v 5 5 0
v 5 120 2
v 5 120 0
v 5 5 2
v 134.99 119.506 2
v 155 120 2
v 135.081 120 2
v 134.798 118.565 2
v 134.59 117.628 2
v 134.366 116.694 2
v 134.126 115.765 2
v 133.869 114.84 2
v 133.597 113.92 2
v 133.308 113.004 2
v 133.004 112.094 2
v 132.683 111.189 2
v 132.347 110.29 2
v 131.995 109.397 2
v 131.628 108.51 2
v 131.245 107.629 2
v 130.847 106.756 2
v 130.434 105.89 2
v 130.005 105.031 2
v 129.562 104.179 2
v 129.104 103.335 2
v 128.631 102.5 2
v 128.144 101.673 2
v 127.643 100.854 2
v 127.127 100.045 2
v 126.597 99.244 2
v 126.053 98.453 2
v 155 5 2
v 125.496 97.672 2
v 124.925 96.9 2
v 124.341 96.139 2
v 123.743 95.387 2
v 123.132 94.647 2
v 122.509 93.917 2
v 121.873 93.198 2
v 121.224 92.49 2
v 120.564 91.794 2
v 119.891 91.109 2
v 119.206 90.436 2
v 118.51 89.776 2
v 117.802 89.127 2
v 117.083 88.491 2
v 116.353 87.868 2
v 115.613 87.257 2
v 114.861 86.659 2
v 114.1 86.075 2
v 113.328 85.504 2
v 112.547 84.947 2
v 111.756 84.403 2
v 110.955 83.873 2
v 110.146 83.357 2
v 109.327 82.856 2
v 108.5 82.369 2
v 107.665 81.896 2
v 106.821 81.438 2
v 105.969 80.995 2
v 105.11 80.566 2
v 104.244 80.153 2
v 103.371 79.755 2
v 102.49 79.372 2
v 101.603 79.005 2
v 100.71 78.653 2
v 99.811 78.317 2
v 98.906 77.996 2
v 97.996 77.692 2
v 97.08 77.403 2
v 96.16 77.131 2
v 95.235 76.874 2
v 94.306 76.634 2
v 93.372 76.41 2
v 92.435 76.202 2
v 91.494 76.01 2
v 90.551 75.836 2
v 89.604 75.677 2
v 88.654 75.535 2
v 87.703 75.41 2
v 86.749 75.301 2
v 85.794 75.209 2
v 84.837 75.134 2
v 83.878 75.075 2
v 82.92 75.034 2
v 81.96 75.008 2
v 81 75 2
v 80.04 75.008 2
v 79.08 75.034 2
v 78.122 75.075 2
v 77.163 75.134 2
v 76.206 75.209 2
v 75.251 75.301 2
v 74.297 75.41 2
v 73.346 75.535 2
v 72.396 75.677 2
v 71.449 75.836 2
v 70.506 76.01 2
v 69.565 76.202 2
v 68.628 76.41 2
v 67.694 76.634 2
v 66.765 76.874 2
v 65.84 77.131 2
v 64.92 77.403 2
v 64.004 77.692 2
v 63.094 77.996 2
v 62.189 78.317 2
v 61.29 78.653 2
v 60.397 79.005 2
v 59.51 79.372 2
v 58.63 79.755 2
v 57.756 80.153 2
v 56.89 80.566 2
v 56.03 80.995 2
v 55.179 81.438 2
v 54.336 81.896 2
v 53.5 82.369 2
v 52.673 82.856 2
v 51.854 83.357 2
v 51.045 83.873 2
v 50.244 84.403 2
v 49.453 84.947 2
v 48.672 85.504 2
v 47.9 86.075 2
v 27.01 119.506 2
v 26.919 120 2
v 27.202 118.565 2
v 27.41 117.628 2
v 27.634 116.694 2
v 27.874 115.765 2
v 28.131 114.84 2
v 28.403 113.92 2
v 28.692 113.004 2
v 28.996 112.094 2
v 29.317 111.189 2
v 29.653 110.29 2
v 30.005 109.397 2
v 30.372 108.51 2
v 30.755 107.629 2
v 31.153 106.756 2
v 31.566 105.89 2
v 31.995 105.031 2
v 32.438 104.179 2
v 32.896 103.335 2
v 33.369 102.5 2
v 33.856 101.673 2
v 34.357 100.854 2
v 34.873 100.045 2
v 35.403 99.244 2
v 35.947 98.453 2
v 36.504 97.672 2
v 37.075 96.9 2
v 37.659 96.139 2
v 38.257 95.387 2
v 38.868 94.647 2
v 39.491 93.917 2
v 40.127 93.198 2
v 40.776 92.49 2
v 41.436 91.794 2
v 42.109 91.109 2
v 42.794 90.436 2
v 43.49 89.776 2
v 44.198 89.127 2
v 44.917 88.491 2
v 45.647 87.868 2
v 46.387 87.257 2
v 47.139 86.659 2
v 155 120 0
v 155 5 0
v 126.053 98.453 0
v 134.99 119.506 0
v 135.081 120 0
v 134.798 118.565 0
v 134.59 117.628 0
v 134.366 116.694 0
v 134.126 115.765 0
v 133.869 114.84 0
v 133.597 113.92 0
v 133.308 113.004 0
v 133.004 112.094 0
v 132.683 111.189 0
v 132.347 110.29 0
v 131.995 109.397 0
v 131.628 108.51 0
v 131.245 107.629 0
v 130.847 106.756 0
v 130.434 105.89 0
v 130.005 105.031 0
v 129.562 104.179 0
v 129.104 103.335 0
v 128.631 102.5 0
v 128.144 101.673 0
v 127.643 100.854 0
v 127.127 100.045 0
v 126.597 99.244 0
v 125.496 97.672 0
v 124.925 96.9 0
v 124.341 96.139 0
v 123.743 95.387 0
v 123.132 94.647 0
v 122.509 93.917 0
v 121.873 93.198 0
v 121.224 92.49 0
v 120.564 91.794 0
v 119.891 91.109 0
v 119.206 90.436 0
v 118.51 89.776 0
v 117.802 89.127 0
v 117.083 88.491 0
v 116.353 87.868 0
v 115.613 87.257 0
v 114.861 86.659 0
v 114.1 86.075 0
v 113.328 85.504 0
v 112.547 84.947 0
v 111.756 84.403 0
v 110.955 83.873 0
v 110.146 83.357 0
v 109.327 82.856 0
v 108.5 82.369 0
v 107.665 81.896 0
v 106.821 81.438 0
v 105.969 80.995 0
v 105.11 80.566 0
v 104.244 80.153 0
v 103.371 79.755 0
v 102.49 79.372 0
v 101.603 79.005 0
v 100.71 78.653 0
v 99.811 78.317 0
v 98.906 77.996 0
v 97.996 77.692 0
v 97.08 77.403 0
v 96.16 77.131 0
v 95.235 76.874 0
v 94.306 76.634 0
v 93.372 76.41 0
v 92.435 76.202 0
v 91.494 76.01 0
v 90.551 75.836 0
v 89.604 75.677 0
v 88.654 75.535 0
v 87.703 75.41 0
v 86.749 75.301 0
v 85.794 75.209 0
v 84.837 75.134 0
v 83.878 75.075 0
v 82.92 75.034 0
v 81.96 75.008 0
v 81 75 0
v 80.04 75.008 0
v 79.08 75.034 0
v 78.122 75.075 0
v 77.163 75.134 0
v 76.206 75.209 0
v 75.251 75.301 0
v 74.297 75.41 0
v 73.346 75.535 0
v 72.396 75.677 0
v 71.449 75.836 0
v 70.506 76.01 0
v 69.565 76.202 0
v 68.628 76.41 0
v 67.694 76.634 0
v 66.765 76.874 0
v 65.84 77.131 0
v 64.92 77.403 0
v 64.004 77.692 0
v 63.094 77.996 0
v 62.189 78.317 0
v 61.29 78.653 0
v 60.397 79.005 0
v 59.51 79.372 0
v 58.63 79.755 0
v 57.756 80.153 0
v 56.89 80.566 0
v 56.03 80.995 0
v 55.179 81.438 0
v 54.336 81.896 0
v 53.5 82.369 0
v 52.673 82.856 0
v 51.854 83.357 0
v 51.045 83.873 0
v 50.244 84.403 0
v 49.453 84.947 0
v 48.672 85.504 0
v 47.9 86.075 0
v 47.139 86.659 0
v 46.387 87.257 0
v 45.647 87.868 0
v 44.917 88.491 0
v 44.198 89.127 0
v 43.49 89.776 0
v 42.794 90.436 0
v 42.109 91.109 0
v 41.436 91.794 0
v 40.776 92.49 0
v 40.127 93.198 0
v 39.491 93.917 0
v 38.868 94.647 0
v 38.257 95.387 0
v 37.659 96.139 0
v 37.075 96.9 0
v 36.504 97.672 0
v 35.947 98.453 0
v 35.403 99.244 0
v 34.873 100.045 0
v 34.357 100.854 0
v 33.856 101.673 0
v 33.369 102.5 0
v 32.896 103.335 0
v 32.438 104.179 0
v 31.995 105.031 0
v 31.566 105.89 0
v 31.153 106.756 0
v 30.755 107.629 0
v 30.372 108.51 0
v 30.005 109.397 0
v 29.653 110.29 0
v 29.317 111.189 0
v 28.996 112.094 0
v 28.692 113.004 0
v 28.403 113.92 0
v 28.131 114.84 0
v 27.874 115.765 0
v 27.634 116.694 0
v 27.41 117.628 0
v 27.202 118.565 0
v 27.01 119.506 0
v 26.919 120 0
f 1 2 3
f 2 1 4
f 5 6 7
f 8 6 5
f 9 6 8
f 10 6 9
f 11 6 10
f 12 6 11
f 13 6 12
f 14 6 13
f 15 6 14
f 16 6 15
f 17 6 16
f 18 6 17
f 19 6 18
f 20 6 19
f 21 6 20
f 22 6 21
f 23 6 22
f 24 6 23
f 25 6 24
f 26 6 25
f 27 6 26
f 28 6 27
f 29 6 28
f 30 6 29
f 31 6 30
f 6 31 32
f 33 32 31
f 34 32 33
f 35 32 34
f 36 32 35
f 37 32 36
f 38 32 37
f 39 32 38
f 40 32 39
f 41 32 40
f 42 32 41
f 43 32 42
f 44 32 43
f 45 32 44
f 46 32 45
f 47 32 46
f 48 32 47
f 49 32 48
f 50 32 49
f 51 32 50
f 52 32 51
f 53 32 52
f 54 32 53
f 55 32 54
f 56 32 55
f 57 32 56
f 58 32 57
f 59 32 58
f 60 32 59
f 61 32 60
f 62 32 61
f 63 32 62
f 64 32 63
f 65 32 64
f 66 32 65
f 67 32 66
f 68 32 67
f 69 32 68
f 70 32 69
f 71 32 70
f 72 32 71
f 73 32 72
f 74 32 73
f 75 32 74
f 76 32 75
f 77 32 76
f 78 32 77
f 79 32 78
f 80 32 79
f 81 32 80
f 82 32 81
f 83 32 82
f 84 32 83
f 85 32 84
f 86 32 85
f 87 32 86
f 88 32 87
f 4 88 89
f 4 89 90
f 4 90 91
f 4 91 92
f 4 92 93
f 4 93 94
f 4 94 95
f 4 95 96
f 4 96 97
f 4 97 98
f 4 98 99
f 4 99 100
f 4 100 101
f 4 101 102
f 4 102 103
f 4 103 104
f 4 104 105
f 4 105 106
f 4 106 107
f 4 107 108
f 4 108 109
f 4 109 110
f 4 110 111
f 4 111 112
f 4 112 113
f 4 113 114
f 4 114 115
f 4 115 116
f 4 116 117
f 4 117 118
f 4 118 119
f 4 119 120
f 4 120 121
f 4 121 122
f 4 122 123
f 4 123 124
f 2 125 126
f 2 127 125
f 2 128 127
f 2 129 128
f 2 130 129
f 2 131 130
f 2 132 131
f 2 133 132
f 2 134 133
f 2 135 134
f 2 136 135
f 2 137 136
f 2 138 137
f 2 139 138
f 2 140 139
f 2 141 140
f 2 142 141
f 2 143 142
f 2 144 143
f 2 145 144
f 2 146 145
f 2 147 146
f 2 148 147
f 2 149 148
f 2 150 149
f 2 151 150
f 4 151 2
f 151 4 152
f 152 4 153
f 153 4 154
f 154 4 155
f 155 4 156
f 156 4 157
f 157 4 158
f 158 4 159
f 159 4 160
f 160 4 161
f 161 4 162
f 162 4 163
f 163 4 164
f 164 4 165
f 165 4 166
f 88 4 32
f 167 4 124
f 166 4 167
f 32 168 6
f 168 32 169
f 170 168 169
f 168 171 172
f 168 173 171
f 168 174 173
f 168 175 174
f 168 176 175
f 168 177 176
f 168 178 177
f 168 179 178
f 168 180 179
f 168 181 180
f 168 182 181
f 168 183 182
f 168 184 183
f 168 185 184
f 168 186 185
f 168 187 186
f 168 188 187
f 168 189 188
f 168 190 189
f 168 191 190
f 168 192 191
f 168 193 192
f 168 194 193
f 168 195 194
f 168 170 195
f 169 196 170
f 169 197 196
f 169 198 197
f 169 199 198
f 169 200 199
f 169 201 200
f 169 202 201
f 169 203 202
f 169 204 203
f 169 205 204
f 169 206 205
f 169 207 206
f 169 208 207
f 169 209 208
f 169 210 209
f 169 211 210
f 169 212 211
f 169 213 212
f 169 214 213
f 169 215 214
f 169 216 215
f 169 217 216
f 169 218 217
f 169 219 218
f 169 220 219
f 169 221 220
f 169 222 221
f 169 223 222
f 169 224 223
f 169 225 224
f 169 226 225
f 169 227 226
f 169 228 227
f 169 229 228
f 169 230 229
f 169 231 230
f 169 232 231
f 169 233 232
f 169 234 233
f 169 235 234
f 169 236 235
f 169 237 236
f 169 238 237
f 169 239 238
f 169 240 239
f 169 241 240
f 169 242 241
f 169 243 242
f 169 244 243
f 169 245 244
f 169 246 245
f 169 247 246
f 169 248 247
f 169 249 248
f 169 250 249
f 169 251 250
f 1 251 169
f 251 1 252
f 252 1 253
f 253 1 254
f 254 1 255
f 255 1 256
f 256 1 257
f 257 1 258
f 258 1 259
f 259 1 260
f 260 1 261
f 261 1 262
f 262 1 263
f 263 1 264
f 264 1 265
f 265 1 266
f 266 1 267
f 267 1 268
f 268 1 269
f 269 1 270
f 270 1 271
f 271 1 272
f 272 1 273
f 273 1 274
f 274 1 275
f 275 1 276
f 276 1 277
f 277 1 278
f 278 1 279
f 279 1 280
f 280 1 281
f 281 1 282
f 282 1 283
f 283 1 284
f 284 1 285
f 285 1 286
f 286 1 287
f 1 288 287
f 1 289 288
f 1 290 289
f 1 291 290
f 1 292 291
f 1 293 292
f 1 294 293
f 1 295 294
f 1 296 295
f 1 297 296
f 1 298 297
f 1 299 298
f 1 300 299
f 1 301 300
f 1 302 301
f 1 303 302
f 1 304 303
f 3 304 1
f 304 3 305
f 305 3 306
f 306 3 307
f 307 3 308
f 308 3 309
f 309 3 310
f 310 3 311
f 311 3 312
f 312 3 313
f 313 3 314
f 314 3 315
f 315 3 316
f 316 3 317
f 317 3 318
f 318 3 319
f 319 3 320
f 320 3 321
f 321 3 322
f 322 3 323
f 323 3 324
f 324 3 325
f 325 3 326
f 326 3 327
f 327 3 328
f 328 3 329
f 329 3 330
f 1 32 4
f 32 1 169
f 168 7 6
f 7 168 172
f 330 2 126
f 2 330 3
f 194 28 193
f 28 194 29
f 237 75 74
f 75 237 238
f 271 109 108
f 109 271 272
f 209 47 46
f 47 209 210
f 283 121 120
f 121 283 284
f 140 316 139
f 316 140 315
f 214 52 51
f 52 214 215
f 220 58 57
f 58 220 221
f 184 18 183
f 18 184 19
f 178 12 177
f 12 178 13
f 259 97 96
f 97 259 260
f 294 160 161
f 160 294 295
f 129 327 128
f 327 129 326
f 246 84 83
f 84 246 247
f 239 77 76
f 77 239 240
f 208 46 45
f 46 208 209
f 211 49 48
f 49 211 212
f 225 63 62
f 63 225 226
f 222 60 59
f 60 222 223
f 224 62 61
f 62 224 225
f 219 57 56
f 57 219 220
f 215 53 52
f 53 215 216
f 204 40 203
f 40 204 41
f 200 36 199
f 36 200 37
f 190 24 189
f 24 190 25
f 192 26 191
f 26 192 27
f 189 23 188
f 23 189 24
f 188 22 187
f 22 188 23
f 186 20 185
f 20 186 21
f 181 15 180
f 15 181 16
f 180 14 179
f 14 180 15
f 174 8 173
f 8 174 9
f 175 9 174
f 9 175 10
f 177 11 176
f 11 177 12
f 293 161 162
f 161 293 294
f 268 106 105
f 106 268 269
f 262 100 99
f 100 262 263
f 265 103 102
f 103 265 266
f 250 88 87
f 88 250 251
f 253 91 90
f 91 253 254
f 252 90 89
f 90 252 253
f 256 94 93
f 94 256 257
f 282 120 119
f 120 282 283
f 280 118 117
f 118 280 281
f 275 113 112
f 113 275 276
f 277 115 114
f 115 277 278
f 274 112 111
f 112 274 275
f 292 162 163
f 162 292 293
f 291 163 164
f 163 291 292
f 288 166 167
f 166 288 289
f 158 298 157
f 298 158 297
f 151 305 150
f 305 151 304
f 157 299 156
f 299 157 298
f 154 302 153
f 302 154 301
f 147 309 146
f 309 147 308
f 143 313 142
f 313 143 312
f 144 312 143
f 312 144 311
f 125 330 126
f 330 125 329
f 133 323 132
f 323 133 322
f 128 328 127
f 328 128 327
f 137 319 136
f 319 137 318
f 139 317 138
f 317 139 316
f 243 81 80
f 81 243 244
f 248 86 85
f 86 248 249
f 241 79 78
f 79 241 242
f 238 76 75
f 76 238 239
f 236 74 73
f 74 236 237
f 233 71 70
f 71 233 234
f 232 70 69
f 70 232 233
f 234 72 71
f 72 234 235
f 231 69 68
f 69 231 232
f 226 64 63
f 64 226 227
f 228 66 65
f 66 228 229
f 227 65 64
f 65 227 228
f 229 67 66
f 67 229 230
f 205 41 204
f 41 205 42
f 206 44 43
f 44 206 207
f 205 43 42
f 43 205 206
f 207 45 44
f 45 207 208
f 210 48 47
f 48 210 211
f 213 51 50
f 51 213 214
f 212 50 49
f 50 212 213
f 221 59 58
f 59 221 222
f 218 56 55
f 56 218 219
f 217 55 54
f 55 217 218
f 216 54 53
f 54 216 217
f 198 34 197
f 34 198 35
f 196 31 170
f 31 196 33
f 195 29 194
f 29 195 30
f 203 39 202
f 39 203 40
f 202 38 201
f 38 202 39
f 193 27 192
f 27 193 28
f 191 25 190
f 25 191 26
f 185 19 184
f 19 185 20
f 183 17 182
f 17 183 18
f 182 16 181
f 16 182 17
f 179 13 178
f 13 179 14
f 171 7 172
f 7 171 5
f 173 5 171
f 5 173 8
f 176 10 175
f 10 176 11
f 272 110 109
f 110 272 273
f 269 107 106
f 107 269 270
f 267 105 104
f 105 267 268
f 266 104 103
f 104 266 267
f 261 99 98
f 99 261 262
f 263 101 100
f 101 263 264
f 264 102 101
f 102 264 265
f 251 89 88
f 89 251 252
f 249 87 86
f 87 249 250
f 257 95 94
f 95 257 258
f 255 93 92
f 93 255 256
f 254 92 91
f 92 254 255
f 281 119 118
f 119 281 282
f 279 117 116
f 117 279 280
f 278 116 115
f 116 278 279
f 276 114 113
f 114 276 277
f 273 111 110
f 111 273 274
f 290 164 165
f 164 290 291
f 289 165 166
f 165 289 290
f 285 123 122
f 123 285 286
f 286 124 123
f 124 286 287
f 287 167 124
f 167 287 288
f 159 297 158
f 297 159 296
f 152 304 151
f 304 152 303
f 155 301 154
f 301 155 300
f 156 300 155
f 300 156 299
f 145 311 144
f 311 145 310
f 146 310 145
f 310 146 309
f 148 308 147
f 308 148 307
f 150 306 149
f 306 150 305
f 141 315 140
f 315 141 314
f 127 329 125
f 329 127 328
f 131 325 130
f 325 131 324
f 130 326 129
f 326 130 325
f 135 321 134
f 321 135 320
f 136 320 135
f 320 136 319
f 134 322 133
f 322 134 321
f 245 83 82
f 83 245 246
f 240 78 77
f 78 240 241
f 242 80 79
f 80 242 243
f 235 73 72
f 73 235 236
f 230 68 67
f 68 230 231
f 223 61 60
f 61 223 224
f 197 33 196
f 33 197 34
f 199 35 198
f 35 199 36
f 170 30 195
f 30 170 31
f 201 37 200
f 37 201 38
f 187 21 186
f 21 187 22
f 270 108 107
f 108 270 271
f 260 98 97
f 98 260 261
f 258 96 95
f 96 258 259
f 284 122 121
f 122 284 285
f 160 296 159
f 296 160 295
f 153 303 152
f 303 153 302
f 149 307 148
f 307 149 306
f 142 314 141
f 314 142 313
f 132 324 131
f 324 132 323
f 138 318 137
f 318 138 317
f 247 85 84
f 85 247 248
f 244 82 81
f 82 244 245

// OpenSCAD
difference() {
translate([5,5,0])cube([150, 115, 2]);
    translate([81,130,0])cylinder(d=110, h= 40, $fn=360);
}
